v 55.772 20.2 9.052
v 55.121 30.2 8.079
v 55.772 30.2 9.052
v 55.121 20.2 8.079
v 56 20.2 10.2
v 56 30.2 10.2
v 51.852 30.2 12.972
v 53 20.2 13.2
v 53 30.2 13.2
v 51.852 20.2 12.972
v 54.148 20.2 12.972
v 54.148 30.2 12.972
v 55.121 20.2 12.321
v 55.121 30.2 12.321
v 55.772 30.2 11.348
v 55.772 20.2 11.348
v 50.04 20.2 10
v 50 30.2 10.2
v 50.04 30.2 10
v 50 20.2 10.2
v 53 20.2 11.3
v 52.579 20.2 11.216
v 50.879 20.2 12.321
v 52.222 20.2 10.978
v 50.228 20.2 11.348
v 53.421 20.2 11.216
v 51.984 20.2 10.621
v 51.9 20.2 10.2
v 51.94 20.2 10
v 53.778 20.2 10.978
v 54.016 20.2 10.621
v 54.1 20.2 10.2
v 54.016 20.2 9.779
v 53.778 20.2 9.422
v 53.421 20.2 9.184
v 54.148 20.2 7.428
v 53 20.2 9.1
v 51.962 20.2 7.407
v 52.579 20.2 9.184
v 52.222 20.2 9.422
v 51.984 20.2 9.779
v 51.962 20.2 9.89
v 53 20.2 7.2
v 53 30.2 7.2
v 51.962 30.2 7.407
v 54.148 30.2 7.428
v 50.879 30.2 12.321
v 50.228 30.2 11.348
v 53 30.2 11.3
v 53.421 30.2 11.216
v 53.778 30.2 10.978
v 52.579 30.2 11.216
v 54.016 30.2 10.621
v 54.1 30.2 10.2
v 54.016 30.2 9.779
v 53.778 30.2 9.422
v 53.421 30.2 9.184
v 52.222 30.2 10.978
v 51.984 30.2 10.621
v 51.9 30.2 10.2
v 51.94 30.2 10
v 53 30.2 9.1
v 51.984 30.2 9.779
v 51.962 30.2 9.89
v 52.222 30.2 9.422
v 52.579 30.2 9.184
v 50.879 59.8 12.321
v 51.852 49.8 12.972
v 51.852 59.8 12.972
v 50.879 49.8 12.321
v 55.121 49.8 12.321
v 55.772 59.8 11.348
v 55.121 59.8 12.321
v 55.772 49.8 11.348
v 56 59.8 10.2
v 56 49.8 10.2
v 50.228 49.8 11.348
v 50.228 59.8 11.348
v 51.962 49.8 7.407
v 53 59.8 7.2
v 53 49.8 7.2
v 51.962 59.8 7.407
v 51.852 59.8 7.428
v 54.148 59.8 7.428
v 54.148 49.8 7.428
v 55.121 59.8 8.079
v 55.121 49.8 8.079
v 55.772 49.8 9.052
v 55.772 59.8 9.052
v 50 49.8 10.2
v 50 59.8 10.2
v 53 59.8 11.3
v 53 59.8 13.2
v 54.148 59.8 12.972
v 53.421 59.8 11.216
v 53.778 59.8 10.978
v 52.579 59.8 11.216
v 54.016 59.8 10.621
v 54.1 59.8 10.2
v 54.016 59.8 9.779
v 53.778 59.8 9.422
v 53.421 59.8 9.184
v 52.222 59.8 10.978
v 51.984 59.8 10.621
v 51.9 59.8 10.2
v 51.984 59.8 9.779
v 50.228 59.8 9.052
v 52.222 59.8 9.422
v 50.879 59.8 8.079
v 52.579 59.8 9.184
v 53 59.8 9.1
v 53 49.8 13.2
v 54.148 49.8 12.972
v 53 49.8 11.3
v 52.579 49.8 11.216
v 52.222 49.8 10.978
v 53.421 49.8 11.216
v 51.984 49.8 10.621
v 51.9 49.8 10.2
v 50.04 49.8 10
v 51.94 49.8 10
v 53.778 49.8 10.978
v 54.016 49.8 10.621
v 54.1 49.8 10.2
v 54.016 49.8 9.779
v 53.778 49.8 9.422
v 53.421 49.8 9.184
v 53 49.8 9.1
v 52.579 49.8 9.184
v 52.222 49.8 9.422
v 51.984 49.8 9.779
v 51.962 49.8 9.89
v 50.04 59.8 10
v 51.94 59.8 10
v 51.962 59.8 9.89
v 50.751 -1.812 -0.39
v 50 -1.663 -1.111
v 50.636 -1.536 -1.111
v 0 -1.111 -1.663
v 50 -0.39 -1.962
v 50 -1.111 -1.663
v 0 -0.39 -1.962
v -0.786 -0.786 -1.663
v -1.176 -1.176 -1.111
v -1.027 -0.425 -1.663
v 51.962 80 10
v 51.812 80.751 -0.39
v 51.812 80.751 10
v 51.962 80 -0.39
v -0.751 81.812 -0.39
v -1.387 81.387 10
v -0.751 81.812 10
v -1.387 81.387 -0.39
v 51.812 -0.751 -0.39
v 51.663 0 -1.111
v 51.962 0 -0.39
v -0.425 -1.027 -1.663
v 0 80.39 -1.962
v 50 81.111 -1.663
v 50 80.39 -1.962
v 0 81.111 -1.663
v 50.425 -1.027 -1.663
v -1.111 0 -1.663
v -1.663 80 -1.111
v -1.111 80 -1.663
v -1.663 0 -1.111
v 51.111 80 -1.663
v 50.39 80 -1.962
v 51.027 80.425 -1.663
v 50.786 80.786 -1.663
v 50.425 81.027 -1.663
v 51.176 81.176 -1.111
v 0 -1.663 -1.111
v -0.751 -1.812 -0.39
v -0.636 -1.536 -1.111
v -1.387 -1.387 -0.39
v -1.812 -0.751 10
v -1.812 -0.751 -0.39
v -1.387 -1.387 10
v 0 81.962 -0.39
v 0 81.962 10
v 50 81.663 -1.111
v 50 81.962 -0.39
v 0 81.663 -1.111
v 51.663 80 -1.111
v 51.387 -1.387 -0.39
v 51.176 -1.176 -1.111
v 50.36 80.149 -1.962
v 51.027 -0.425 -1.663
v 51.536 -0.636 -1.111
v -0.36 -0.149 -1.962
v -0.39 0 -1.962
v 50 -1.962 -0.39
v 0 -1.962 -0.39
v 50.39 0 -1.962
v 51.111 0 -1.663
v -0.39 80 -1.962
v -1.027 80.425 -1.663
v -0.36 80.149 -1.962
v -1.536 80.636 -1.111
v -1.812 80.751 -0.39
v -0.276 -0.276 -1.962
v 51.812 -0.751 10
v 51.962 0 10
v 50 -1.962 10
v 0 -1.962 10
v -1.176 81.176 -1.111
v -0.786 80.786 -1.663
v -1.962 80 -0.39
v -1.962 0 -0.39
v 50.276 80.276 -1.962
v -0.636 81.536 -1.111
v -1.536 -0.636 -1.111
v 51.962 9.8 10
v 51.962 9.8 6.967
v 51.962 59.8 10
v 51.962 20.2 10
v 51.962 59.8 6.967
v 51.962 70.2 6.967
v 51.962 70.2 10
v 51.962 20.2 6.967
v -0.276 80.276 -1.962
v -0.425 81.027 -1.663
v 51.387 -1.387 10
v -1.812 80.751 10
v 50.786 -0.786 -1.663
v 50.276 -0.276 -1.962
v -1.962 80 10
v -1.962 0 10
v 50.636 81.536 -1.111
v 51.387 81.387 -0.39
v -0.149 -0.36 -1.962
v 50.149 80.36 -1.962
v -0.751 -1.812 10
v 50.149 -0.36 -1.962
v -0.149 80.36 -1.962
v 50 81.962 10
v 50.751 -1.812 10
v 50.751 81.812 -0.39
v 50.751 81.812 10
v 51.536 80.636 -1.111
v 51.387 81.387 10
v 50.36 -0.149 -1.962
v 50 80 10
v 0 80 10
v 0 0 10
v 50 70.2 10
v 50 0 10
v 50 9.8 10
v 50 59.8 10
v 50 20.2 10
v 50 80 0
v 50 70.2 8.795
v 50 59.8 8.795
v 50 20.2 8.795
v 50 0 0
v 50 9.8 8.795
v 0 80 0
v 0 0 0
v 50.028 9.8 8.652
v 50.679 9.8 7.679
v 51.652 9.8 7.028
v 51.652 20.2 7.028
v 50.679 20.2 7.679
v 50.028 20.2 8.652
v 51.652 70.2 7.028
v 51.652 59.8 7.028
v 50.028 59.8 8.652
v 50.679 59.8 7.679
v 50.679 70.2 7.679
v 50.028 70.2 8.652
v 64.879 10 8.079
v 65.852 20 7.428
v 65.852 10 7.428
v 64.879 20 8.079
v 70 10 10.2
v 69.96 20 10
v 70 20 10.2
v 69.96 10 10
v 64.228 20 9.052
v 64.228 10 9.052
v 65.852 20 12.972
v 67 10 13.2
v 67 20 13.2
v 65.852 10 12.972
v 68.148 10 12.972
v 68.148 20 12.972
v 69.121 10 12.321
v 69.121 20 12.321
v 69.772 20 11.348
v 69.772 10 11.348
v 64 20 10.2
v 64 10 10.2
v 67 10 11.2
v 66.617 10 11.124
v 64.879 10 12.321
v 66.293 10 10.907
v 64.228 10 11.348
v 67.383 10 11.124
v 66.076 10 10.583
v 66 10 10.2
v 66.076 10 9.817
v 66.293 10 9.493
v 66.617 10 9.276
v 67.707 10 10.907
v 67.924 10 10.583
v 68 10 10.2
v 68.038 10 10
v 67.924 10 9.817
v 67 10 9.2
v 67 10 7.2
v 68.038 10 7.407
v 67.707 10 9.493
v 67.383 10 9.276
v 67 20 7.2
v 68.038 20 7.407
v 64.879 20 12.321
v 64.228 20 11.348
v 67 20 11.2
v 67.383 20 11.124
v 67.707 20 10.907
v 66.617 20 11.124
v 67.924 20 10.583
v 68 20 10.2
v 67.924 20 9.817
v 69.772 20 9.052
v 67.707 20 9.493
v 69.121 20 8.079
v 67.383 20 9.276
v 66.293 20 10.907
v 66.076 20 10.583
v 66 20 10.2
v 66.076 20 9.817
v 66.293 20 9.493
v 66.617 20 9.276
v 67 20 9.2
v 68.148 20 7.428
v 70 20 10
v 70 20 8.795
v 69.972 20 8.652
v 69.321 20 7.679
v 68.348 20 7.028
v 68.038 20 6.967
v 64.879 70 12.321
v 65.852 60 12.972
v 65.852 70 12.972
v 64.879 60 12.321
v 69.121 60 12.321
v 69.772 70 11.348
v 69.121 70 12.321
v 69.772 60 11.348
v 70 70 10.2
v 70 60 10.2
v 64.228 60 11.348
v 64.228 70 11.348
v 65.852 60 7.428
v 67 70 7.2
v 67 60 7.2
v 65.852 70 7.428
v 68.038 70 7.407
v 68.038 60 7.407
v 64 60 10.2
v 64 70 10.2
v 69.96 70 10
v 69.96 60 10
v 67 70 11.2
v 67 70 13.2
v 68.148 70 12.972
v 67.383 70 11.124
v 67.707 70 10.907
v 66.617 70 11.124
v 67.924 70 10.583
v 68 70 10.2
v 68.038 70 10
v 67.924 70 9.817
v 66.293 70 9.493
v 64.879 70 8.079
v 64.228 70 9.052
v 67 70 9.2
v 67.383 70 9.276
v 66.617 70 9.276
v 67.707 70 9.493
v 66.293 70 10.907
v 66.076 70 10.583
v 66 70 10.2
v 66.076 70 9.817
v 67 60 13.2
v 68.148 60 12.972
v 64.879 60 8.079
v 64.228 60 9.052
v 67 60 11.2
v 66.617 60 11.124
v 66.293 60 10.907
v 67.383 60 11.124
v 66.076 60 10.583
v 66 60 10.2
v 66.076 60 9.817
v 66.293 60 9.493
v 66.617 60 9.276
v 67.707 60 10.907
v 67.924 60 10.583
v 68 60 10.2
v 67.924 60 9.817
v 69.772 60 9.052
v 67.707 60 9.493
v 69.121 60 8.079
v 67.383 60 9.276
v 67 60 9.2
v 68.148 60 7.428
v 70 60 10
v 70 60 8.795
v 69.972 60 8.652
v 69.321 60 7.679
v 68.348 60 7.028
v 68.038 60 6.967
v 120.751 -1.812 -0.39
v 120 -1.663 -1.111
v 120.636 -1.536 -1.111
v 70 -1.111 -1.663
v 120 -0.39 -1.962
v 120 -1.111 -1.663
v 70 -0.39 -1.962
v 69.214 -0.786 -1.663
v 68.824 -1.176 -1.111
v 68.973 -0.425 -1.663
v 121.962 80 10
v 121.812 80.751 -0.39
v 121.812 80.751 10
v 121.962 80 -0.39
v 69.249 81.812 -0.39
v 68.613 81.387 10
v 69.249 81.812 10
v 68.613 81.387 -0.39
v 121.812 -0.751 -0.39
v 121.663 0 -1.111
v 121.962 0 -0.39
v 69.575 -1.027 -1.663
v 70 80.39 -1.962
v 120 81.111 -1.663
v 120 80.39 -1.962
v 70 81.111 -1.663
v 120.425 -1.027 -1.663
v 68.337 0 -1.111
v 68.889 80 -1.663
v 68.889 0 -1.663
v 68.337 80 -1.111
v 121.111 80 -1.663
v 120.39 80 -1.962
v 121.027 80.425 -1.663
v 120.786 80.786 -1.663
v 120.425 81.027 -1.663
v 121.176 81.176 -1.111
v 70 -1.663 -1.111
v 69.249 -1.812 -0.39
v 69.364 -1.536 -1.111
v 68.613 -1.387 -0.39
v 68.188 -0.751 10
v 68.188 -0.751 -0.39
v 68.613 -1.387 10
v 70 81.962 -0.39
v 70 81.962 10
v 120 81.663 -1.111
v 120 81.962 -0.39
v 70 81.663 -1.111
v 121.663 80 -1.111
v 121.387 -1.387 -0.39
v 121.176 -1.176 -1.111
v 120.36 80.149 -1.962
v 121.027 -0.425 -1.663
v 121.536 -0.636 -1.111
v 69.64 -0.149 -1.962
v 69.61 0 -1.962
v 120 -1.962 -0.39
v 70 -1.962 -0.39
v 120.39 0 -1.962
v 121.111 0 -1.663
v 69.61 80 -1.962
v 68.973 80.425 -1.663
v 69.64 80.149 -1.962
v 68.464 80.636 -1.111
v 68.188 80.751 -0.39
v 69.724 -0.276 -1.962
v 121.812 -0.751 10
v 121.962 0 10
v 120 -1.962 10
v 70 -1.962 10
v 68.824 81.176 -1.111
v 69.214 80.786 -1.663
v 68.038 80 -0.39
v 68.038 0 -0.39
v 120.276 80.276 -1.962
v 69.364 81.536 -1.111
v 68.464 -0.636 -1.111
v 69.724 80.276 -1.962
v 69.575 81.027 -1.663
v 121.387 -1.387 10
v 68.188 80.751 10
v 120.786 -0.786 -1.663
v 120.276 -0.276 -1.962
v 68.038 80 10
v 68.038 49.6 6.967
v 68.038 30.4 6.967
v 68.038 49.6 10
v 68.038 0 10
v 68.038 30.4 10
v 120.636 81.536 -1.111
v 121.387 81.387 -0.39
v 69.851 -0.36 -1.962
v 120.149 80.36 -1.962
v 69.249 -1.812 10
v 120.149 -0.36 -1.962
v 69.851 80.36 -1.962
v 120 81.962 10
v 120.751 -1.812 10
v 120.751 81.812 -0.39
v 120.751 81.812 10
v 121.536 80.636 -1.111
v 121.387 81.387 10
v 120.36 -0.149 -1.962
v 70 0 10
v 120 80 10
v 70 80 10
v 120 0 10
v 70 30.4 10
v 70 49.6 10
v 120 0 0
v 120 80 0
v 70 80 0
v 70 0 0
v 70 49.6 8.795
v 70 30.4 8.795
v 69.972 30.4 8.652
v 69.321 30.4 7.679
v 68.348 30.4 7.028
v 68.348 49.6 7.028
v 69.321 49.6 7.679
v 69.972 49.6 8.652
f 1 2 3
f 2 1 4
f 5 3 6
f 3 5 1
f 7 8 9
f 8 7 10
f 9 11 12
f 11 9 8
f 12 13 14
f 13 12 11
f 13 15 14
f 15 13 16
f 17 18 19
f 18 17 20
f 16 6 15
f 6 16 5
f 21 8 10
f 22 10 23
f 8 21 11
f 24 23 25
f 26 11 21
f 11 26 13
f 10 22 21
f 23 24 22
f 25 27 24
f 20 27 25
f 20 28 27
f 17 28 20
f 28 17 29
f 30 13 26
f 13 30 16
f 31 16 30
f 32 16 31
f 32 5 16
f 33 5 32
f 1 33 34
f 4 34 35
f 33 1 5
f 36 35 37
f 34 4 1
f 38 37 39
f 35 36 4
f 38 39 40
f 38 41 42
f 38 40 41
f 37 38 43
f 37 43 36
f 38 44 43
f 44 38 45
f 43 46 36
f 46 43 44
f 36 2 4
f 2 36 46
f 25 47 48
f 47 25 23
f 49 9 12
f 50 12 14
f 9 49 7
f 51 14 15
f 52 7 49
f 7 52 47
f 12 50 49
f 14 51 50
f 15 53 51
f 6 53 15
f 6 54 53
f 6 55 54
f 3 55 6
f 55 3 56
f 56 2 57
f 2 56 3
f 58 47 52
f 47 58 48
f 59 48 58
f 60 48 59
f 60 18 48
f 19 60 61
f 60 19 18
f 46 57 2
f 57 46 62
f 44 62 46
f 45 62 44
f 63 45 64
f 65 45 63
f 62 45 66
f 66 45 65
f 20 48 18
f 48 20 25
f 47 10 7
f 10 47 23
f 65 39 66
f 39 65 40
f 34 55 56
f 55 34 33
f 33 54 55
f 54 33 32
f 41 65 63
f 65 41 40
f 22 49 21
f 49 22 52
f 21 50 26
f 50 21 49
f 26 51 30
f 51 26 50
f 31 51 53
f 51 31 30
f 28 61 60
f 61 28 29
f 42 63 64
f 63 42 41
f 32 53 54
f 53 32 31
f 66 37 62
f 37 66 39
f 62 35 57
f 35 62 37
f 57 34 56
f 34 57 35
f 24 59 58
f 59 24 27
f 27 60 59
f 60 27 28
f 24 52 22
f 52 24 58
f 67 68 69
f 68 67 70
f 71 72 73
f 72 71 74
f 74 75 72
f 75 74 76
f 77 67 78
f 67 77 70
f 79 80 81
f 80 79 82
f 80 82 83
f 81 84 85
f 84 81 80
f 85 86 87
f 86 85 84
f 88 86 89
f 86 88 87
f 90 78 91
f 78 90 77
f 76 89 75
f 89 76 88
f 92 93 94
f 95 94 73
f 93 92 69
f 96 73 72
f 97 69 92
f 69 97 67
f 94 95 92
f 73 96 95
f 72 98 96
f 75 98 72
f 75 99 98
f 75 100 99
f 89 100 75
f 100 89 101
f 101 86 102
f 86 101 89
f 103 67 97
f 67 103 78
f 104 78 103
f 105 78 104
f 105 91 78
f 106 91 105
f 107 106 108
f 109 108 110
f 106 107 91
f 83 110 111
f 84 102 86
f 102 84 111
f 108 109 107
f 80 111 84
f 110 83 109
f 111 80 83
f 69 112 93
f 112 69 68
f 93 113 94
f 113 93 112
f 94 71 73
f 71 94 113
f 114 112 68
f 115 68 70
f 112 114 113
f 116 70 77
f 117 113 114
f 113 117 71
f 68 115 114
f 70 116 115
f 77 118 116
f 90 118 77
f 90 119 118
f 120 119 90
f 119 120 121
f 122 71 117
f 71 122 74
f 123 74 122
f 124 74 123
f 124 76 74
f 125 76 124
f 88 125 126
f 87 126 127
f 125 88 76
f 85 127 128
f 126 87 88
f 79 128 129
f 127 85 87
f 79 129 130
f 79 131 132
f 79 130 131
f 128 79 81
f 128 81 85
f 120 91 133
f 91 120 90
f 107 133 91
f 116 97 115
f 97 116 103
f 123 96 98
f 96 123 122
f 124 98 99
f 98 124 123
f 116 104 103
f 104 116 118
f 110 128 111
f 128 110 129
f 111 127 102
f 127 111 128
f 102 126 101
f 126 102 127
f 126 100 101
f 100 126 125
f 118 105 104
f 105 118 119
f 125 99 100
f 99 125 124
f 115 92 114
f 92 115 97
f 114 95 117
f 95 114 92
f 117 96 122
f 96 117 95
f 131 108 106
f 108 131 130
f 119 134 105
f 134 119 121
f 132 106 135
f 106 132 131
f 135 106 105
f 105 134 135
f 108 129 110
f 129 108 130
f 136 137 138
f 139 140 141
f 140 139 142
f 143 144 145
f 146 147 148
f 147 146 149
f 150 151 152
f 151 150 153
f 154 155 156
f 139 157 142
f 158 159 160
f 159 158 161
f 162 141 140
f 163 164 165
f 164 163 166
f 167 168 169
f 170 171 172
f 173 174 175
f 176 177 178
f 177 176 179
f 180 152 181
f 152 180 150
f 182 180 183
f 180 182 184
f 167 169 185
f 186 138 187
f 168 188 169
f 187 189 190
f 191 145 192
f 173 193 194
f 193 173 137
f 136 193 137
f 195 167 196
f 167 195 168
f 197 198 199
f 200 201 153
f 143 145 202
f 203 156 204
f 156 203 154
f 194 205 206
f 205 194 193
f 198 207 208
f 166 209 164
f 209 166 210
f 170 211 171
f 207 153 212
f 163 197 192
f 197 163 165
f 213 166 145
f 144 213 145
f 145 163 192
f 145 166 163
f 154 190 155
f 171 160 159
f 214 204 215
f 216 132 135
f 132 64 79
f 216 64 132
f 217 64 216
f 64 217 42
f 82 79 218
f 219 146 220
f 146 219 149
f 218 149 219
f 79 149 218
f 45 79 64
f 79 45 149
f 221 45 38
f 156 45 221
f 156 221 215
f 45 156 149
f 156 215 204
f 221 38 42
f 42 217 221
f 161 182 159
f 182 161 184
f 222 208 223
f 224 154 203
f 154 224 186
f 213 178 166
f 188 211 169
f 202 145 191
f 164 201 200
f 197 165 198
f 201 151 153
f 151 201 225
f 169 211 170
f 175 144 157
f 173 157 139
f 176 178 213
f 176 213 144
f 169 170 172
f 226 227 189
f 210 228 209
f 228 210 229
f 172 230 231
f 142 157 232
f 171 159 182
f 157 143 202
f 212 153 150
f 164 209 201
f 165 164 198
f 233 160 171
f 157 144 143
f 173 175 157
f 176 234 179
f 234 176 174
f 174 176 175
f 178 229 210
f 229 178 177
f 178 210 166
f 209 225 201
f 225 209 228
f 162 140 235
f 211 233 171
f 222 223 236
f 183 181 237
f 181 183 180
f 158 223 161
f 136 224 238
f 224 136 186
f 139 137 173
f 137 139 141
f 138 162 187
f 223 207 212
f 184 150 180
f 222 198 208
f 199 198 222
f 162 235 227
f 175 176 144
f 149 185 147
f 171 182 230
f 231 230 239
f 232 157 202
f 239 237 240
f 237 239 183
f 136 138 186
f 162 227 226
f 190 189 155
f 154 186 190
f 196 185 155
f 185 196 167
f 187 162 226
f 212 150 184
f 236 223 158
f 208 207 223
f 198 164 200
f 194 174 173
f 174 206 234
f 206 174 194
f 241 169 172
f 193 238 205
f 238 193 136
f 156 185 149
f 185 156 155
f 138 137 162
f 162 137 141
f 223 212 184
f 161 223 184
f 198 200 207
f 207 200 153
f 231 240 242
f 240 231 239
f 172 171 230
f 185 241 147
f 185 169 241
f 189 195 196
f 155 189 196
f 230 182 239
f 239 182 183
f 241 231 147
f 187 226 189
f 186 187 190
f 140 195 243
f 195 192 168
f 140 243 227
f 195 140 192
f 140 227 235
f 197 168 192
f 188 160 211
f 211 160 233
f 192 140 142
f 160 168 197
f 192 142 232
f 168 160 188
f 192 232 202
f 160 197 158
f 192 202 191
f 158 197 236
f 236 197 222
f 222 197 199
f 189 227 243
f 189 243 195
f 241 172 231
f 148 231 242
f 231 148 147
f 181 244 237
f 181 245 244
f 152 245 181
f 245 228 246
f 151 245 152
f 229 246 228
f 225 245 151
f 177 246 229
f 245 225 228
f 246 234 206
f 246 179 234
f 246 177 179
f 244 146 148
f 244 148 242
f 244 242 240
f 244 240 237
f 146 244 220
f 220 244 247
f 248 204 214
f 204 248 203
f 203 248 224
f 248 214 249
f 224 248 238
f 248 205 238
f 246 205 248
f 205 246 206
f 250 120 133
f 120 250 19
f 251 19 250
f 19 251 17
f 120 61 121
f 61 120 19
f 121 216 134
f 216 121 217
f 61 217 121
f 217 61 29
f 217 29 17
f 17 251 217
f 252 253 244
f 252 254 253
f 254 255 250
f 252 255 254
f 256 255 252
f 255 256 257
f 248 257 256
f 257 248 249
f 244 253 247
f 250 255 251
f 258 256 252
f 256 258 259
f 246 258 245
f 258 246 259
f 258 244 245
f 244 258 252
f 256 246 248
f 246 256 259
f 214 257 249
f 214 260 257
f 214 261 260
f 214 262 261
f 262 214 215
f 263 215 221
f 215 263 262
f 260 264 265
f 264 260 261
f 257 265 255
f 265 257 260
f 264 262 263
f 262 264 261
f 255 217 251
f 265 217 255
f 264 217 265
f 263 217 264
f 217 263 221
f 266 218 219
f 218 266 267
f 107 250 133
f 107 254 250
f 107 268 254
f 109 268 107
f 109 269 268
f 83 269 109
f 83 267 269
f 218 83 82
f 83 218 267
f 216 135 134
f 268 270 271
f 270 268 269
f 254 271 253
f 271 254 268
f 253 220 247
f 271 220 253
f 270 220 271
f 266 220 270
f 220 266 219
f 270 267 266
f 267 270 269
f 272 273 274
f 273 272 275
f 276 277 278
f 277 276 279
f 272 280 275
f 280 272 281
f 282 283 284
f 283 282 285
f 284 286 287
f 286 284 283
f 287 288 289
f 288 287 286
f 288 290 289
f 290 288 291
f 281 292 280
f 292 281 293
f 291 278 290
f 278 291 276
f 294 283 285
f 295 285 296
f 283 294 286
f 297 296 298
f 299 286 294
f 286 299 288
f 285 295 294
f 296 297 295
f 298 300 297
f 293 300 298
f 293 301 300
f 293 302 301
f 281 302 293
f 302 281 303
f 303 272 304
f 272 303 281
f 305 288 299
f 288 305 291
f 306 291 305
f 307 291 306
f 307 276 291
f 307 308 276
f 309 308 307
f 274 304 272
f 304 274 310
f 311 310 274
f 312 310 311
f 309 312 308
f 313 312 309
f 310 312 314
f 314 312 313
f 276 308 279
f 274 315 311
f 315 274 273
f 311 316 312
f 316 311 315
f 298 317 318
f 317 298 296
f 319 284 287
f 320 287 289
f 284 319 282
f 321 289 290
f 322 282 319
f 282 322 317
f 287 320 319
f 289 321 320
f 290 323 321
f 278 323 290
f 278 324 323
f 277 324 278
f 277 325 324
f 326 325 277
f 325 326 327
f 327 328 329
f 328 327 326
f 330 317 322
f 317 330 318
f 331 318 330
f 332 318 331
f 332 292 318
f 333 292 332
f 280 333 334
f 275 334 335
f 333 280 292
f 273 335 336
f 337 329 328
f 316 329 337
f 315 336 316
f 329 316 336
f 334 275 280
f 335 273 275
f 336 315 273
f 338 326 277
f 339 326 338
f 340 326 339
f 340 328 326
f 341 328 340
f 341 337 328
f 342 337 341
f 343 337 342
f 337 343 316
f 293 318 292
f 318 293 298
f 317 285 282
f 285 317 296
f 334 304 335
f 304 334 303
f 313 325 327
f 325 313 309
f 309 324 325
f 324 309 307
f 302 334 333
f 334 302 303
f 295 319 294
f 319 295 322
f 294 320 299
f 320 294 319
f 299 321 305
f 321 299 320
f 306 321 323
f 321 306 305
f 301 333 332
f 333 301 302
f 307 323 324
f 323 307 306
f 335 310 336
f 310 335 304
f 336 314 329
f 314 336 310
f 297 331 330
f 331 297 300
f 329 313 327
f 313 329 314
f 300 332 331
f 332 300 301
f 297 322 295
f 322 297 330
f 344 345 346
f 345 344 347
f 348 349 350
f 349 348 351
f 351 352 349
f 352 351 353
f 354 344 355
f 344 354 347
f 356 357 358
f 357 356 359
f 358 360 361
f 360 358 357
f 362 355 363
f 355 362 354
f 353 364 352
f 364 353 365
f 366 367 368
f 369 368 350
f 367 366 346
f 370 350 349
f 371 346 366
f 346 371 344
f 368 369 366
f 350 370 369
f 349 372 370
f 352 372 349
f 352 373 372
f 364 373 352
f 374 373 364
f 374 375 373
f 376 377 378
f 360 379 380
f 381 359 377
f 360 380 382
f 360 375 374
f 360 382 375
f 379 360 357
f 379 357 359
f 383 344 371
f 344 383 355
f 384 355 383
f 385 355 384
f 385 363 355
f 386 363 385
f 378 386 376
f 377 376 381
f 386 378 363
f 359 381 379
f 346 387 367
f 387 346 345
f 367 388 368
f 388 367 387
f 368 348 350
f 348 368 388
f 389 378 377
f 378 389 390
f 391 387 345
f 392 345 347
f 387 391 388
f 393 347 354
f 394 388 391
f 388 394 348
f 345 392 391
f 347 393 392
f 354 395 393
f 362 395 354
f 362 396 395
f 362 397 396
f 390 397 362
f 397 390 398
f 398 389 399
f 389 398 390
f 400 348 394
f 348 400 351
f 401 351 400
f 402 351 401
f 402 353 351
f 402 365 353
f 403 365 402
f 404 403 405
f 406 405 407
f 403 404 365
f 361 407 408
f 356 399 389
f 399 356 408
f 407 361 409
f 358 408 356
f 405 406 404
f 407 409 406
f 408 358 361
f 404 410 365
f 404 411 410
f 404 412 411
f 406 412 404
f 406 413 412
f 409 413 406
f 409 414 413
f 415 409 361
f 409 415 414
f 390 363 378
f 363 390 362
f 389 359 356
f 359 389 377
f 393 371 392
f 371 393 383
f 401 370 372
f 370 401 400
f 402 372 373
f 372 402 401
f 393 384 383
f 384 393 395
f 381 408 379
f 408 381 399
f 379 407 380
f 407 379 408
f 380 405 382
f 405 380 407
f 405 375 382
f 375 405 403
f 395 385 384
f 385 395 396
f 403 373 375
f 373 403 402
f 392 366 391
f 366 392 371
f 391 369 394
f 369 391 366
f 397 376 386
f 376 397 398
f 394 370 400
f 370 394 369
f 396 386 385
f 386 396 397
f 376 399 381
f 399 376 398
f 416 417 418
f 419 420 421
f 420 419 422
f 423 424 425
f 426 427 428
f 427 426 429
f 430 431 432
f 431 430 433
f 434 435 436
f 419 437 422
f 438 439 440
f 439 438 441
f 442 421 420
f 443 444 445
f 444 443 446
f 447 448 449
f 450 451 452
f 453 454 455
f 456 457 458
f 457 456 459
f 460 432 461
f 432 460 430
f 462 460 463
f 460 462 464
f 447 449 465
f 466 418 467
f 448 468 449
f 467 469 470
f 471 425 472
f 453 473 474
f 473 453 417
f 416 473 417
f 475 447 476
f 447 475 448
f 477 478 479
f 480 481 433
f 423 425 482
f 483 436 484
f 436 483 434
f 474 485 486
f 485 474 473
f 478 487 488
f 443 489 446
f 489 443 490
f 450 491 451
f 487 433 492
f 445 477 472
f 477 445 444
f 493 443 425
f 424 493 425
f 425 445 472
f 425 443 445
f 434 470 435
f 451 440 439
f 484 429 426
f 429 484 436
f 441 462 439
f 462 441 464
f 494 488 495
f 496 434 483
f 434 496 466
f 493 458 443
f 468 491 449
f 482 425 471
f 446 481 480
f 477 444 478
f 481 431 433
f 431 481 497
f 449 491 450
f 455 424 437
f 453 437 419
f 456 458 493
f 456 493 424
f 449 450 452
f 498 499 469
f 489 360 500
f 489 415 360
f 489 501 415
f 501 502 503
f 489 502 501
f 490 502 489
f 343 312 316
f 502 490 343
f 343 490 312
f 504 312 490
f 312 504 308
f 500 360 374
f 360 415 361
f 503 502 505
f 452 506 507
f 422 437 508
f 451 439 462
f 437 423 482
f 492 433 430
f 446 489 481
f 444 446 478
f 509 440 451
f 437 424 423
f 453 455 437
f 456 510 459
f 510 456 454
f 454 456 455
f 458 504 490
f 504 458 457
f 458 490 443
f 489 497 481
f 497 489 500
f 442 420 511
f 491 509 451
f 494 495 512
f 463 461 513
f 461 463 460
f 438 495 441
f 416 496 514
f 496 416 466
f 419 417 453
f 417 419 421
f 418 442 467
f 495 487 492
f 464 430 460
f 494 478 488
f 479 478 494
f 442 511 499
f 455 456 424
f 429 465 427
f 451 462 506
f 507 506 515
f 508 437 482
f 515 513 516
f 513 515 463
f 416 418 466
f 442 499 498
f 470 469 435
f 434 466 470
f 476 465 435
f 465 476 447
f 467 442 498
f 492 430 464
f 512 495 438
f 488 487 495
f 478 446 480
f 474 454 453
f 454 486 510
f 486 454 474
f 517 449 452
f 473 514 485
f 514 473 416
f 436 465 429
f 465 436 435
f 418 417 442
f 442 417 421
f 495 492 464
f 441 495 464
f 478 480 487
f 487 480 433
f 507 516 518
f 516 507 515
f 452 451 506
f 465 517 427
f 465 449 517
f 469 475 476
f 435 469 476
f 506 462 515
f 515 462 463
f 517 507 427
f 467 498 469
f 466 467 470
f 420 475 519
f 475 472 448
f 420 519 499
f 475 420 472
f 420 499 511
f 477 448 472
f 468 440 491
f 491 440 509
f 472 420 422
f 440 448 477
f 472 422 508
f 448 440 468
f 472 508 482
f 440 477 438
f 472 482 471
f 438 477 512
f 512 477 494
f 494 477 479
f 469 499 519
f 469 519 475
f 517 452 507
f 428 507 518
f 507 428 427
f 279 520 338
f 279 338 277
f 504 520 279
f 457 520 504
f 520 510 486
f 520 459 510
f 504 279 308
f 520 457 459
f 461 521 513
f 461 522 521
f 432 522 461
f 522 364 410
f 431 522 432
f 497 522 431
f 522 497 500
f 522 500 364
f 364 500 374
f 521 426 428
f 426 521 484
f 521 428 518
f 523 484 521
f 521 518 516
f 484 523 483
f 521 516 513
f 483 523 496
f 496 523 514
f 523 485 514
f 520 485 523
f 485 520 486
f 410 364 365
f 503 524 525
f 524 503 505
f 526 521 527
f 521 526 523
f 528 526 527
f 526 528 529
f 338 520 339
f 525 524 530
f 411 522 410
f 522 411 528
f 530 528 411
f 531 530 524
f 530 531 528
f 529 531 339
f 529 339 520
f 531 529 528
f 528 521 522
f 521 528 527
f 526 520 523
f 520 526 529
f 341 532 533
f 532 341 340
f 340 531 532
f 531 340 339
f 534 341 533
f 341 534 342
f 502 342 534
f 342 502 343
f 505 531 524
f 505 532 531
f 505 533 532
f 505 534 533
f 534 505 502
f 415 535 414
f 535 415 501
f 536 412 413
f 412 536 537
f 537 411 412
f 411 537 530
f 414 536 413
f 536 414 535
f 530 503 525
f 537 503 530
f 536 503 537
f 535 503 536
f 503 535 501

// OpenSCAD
boxW = 50;
boxH = 80;

topH = 10;
bottomH = 10;

rext = 6;
rlock = 2;
rturn = 2.2;
rlen = 10;
lockgap = .2;

translate ([0,0,0]) {
	
	// rotule
	translate([boxW+rext/2, 10+rlen+lockgap, topH+lockgap])
		rotate([-90,0,0])
			difference() {
				cylinder(rlen,rext/2,rext/2, $fn=16);
				translate([0,0,-1])
					cylinder(rlen+2,rturn/2,rturn/2, $fn=16);
			}
	translate([boxW+rext/2, boxH-10-rlen-lockgap, topH+lockgap])
		rotate([90,0,0])
			difference() {
				cylinder(rlen,rext/2,rext/2, $fn=16);
				translate([0,0,-1])
					cylinder(rlen+2,rturn/2,rturn/2, $fn=16);
			}

	difference() {
		minkowski() {
			cube([boxW,boxH,15]);
			sphere(2, $fn=16);
		}
		// supprimer l'arrondi inferieur15
		translate([-10,-10,topH])
			cube([boxW+20,boxH+20,30]);
		// trou
		translate([0,0,0])
			cube([boxW, boxH, 30]);
		// trou rotule
		translate([boxW+rext/2-lockgap, 10-lockgap, topH-lockgap])
			rotate([-90,0,0])
				cylinder(rlen+lockgap*2,rext/2,rext/2, $fn=16);
		translate([boxW+rext/2-lockgap, boxH-10+lockgap, topH-lockgap])
			rotate([90,0,0])
				cylinder(rlen+lockgap*2,rext/2,rext/2, $fn=16);
				
	}
} //*/

translate ([boxW+20,0,0]) {
	// rotule
	translate([-rext/2, 10, bottomH+lockgap])
		rotate([-90,0,0])
			difference() {
				cylinder(rlen,rext/2,rext/2, $fn=16);
				translate([0,0,-1])
					cylinder(rlen+2,rlock/2,rlock/2, $fn=16);
			}
	translate([-rext/2, boxH-10, bottomH+lockgap])
		rotate([90,0,0])
			difference() {
				cylinder(rlen,rext/2,rext/2, $fn=16);
				translate([0,0,-1])
					cylinder(rlen+2,rlock/2,rlock/2, $fn=16);
			}

	difference() {
		minkowski() {
			cube([boxW,boxH,15]);
			sphere(2, $fn=16);
		}
		// supprimer l'arrondi superieur
		translate([-10,-10,bottomH])
			cube([boxW+20,boxH+20,30]);
		// trou
		cube([boxW, boxH, 30]);
		// trou rotule
		translate([-rext/2+lockgap, rlen+ 10, topH-lockgap])
			rotate([-90,0,0])
				cylinder(rlen+lockgap*2,rext/2,rext/2, $fn=16);
		translate([-rext/2+lockgap, boxH-10 -rlen, topH-lockgap])
			rotate([90,0,0])
				cylinder(rlen+lockgap*2,rext/2,rext/2, $fn=16);
	}
}//*/
